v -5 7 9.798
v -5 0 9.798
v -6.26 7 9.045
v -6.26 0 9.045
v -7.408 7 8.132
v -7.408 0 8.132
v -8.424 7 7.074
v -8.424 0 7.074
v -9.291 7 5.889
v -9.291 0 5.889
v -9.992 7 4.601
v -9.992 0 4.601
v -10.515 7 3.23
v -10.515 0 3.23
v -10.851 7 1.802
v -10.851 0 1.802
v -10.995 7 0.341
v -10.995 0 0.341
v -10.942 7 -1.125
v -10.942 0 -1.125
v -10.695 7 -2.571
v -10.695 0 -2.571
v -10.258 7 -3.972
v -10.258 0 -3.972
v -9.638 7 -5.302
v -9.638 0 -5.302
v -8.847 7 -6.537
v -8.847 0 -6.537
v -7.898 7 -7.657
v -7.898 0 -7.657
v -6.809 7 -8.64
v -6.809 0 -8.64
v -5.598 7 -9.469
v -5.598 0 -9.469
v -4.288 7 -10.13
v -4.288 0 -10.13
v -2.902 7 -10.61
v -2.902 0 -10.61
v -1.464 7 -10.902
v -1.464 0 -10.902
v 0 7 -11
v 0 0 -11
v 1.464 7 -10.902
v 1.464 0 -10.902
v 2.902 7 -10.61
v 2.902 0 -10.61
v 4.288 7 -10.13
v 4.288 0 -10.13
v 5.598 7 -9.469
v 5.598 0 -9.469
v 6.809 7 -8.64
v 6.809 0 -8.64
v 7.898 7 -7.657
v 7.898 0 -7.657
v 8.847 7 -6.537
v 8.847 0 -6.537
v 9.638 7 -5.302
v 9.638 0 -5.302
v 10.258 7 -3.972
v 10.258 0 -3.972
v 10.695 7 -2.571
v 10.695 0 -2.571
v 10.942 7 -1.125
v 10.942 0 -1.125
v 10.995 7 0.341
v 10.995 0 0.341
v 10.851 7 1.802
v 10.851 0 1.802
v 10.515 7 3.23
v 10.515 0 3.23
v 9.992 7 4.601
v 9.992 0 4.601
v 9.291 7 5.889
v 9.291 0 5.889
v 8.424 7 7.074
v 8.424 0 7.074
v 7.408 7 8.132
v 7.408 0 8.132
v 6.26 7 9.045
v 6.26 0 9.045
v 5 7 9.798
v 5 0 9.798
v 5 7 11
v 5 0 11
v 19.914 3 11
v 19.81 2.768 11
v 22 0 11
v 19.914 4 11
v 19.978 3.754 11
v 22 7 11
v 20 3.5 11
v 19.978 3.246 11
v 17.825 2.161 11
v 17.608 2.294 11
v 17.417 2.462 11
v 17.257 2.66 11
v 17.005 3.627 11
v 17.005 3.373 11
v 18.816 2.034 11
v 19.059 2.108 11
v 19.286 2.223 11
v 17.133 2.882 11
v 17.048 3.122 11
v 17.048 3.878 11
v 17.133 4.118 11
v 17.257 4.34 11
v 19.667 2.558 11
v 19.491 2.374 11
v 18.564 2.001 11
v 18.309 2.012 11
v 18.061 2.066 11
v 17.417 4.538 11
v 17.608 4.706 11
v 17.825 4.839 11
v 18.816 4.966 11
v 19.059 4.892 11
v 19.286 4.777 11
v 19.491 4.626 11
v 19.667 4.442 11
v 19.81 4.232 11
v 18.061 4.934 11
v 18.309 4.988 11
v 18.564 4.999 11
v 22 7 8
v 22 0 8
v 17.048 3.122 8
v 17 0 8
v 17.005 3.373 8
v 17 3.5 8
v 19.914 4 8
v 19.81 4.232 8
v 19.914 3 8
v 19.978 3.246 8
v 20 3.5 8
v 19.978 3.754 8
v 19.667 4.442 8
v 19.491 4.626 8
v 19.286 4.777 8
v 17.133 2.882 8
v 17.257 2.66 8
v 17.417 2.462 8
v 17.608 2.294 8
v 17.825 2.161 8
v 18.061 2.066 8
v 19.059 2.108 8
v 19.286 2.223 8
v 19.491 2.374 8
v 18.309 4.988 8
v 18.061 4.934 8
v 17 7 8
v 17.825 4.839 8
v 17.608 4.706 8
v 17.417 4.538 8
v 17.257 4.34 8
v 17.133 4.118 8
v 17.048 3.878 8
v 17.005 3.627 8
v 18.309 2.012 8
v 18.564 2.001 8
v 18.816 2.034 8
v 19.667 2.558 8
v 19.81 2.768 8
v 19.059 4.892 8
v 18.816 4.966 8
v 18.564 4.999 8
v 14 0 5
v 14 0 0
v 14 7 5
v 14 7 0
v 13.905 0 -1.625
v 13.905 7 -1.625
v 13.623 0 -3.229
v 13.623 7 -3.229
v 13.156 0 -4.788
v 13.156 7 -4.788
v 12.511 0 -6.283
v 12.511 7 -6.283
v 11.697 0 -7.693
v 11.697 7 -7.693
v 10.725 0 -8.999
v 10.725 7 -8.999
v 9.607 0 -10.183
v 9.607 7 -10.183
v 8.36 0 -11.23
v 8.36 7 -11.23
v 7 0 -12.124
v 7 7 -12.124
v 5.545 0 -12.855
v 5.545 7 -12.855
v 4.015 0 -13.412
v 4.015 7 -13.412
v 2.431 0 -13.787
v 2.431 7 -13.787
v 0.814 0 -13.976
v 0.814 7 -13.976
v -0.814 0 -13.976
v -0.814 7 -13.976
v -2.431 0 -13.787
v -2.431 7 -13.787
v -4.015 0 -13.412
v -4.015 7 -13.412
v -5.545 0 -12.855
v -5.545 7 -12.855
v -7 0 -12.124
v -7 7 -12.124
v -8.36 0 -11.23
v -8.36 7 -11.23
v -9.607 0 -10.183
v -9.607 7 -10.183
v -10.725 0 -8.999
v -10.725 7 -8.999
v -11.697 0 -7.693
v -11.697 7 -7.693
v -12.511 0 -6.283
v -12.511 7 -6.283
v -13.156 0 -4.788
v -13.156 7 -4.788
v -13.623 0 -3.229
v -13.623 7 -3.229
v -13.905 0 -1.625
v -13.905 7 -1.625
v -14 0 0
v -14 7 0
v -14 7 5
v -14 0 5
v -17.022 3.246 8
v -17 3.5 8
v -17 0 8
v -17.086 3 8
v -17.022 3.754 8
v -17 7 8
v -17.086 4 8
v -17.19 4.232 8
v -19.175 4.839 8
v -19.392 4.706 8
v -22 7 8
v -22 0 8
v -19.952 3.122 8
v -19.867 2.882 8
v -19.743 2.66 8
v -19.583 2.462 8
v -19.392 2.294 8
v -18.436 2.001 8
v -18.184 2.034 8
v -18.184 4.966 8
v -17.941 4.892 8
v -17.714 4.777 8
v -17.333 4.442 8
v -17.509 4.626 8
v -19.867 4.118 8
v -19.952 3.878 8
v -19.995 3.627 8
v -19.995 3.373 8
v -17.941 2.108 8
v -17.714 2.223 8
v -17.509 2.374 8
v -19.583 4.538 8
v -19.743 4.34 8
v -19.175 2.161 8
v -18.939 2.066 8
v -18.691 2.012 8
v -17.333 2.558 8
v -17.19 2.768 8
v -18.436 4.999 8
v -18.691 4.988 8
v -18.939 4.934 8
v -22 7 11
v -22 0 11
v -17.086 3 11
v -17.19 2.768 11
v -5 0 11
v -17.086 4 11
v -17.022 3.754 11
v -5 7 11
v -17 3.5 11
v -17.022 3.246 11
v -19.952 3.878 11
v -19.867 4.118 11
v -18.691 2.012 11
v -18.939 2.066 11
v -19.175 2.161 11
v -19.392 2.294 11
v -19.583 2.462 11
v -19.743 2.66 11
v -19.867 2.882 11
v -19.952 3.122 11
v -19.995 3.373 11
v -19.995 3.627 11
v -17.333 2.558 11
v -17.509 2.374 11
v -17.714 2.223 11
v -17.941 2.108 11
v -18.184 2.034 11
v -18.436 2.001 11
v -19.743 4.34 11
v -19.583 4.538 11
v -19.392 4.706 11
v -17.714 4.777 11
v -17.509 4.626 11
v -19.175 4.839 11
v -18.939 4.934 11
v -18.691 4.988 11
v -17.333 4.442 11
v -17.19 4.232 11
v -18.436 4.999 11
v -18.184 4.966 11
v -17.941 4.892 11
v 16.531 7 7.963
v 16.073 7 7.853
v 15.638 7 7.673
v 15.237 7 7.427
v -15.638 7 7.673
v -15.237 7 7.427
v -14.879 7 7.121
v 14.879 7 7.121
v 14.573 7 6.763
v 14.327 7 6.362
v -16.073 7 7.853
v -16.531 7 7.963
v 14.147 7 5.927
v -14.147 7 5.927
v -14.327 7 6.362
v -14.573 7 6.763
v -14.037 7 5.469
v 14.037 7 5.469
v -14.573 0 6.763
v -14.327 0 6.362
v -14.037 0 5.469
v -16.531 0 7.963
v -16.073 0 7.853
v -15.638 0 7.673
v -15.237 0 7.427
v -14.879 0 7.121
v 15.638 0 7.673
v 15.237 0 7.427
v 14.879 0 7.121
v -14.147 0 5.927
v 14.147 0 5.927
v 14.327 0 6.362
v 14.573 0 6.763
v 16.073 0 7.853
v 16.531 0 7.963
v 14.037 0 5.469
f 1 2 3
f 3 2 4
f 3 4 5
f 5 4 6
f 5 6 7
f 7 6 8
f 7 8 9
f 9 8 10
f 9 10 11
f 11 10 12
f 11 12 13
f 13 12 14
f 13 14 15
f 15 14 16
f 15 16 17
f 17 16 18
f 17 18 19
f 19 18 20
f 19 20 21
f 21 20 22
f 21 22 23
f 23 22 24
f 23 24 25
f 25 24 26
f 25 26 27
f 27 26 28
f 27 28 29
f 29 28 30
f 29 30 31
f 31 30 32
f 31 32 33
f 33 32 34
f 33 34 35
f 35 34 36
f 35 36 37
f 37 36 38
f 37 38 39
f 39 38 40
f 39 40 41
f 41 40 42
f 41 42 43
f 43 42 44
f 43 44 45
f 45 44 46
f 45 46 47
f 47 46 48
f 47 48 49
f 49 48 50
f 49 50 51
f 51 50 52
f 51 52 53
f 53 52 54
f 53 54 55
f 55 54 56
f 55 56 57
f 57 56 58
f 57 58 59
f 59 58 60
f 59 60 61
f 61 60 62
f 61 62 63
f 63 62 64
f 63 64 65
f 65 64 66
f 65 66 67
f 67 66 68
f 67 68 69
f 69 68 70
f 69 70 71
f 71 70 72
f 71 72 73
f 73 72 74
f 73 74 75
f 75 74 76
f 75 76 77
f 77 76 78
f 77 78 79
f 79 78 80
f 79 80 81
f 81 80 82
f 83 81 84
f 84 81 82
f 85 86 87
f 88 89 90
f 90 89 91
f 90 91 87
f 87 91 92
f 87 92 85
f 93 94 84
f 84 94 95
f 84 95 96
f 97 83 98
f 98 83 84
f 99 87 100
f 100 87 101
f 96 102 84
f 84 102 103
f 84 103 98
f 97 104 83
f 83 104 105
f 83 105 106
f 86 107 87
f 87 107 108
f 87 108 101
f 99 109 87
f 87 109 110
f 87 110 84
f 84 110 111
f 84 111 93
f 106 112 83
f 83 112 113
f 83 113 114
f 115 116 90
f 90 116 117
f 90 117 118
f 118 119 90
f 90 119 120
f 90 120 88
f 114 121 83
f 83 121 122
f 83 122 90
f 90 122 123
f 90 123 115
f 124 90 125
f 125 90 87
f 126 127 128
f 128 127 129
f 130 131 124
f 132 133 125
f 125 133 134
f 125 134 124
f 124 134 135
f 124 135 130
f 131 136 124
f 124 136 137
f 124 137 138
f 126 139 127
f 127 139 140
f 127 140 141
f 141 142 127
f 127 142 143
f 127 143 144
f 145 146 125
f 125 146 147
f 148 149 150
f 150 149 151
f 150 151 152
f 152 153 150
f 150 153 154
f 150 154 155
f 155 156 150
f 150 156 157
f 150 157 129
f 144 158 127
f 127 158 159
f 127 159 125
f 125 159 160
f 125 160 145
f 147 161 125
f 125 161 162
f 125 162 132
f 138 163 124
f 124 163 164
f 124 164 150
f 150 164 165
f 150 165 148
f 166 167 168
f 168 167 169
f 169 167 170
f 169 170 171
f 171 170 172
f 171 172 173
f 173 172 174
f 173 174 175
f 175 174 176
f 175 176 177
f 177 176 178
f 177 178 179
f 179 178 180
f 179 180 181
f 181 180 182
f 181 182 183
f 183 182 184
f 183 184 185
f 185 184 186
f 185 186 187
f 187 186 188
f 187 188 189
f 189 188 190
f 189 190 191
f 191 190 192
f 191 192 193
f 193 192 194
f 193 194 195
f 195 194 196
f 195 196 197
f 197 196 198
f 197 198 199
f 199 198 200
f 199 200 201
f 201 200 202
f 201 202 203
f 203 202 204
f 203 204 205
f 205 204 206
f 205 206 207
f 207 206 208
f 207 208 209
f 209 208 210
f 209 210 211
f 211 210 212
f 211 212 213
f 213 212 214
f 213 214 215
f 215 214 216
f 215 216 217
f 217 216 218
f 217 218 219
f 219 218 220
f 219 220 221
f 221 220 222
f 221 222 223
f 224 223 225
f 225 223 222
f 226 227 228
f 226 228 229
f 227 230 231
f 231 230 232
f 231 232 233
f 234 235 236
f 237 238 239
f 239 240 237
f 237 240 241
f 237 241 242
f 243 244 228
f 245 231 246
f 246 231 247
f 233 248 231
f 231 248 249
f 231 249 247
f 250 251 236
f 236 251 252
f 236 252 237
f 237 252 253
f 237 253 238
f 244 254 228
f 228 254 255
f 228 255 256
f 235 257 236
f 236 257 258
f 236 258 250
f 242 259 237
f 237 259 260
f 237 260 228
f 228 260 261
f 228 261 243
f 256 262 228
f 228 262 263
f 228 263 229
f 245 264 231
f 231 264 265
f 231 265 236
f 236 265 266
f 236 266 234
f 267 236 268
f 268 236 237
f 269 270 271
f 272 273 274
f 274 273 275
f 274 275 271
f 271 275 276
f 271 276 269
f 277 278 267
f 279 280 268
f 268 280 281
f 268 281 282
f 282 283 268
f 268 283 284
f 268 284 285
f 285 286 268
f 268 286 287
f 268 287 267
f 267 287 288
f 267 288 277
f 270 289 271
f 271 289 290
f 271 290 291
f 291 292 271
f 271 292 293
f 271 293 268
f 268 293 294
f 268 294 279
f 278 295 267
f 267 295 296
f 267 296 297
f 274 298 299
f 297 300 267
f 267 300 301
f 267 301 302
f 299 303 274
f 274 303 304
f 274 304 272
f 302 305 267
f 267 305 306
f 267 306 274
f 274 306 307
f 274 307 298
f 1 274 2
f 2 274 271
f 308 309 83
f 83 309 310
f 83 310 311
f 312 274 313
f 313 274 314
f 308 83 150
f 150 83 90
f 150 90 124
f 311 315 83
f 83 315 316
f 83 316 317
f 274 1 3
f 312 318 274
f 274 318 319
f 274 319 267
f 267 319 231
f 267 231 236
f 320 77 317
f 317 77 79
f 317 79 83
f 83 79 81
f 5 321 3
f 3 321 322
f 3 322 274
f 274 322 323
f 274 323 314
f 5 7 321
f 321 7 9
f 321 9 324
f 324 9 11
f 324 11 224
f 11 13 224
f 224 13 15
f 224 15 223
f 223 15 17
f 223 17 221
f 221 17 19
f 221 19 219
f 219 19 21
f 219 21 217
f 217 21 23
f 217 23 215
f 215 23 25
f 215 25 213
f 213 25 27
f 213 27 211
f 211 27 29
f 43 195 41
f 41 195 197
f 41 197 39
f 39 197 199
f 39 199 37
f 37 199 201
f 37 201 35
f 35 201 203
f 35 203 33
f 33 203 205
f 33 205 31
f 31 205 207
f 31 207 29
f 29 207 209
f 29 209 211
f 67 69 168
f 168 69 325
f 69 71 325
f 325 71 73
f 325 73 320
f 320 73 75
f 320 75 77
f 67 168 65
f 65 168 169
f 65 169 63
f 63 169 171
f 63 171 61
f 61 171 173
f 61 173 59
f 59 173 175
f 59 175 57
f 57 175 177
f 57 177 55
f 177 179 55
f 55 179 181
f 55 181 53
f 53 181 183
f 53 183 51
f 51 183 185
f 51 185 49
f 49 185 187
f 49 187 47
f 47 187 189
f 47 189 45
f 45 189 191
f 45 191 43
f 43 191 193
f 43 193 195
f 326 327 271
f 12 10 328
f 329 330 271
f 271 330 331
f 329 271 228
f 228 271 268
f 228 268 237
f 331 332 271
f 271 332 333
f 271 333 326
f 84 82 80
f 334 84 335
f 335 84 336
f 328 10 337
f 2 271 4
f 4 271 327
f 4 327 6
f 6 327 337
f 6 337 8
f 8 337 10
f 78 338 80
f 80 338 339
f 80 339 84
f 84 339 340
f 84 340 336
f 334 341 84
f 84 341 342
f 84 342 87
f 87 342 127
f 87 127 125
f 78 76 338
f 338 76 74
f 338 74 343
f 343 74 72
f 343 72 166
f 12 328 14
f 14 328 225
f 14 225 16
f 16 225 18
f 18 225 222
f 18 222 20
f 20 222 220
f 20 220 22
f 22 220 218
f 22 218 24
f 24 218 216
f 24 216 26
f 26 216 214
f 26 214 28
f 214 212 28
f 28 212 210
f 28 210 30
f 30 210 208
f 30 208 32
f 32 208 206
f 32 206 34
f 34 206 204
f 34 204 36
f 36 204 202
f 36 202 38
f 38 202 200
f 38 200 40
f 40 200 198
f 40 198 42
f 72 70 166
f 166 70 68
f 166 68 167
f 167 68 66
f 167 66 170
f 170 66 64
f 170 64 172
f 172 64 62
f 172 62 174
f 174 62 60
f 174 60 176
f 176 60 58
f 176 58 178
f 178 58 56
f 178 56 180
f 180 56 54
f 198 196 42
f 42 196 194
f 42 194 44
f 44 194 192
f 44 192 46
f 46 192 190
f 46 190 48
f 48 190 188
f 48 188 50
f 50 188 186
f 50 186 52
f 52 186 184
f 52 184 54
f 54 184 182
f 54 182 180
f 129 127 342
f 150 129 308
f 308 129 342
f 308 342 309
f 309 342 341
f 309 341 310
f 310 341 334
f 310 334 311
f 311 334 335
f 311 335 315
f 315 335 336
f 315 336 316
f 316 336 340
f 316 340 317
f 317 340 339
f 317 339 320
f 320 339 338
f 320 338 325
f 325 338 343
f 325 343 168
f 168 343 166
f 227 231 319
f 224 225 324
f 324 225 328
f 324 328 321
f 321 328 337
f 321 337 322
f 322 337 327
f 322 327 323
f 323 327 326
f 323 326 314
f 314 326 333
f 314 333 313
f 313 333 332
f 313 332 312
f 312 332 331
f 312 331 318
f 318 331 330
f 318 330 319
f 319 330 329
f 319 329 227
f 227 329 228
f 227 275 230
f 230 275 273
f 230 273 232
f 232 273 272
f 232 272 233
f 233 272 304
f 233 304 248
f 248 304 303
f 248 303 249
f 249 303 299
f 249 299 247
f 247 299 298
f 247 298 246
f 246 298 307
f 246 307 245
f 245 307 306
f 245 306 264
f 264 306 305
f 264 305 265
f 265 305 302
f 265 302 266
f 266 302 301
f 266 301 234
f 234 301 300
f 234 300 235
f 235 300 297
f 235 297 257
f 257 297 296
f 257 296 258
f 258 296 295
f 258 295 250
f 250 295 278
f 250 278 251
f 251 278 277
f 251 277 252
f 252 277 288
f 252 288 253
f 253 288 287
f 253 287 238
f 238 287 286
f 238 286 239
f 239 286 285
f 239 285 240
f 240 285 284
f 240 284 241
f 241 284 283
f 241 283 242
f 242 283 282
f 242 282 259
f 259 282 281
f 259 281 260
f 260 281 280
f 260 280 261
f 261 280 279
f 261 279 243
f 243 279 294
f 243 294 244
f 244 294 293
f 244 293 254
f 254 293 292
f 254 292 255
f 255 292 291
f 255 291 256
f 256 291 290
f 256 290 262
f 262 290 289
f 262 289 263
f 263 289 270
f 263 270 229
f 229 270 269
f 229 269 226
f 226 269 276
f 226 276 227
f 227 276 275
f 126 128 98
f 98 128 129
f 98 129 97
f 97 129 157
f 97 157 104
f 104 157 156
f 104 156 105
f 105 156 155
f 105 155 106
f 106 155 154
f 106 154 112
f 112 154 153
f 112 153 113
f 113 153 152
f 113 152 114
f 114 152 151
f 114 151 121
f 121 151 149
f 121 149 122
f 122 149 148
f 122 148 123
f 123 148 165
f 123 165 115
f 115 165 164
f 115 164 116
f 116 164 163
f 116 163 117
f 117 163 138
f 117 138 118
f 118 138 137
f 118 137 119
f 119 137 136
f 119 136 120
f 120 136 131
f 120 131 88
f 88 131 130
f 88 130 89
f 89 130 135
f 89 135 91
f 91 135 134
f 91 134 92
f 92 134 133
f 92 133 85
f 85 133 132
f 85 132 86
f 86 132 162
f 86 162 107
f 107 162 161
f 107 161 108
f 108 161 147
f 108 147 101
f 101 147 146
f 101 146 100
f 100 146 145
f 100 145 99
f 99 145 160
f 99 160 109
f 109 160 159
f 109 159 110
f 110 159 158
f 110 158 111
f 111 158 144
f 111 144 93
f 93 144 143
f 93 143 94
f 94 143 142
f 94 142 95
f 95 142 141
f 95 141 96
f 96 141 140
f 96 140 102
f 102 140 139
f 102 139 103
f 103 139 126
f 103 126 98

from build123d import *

# Parameters (mm, degrees)
SKETCH1_W           = 8
SKETCH1_H           = 3
BOSS_EXTRUDE2_DEPTH = 7
FILLET3_R           = 3
FILLET4_R           = 3
SKETCH3_R           = 1.5
CUT_EXTRUDE1_DEPTH  = 7


with BuildPart() as part:
    # Sketch1 → Boss-Extrude2 (new body)
    with BuildSketch(Plane(origin=(0, 0, 0), x_dir=(1, 0, 0), z_dir=(0, 1, 0))):
        with Locations((-18, -9.5)):
            Rectangle(SKETCH1_W, SKETCH1_H)
        with BuildLine():
            Line((-14, -8), (-11.489125293, -8))
            ThreePointArc((-11.489125293, -8), (-13.357540082, -4.192388692), (-14, 0))
            Line((-14, 0), (-14, -8))
        make_face()
        with BuildLine():
            Line((-14, -11), (-8.660254038, -11))
            ThreePointArc((-8.660254038, -11), (-10.185743559, -9.604719056), (-11.489125293, -8))
            Line((-11.489125293, -8), (-14, -8))
            Line((-14, -8), (-14, -11))
        make_face()
        with BuildLine():
            ThreePointArc((-11.489125293, -8), (-10.185743559, -9.604719056), (-8.660254038, -11))
            Line((-8.660254038, -11), (-5, -11))
            Line((-5, -11), (-5, -9.797958971))
            ThreePointArc((-5, -9.797958971), (-6.338986528, -8.989841478), (-7.549834435, -8))
            Line((-7.549834435, -8), (-11.489125293, -8))
        make_face()
        with BuildLine():
            ThreePointArc((-14, 0), (-13.357540082, -4.192388692), (-11.489125293, -8))
            Line((-11.489125293, -8), (-7.549834435, -8))
            ThreePointArc((-7.549834435, -8), (-10.100697471, -4.356134824), (-11, 0))
            Line((-11, 0), (-14, 0))
        make_face()
        with BuildLine():
            Line((11, 0), (14, 0))
            ThreePointArc((14, 0), (0, 14), (-14, 0))
            Line((-14, 0), (-11, 0))
            ThreePointArc((-11, 0), (0, 11), (11, 0))
        make_face()
        with BuildLine():
            Line((7.549834435, -8), (11.489125293, -8))
            ThreePointArc((11.489125293, -8), (13.357540082, -4.192388692), (14, 0))
            Line((14, 0), (11, 0))
            ThreePointArc((11, 0), (10.100697471, -4.356134824), (7.549834435, -8))
        make_face()
        with BuildLine():
            Line((5, -11), (8.660254038, -11))
            ThreePointArc((8.660254038, -11), (10.185743559, -9.604719056), (11.489125293, -8))
            Line((11.489125293, -8), (7.549834435, -8))
            ThreePointArc((7.549834435, -8), (6.338986528, -8.989841478), (5, -9.797958971))
            Line((5, -9.797958971), (5, -11))
        make_face()
        with BuildLine():
            Line((11.489125293, -8), (14, -8))
            Line((14, -8), (14, 0))
            ThreePointArc((14, 0), (13.357540082, -4.192388692), (11.489125293, -8))
        make_face()
        with BuildLine():
            Line((8.660254038, -11), (14, -11))
            Line((14, -11), (14, -8))
            Line((14, -8), (11.489125293, -8))
            ThreePointArc((11.489125293, -8), (10.185743559, -9.604719056), (8.660254038, -11))
        make_face()
        with Locations((18, -9.5)):
            Rectangle(SKETCH1_W, SKETCH1_H)
    extrude(amount=BOSS_EXTRUDE2_DEPTH)

    # Fillet3
    fillet3_edges = [part.edges().sort_by_distance(p)[0] for p in [
        (14, 3.5, 8),
    ]]
    fillet(fillet3_edges, radius=FILLET3_R)

    # Fillet4
    fillet4_edges = [part.edges().sort_by_distance(p)[0] for p in [
        (-14, 3.5, 8),
    ]]
    fillet(fillet4_edges, radius=FILLET4_R)

    # Sketch3 → Cut-Extrude1 (cut)
    with BuildSketch(Plane.XY.offset(11)):
        with Locations((-18.5, 3.5)):
            Circle(SKETCH3_R)
        with Locations((18.5, 3.5)):
            Circle(SKETCH3_R)
    extrude(amount=-CUT_EXTRUDE1_DEPTH, mode=Mode.SUBTRACT)


solid = part.part
